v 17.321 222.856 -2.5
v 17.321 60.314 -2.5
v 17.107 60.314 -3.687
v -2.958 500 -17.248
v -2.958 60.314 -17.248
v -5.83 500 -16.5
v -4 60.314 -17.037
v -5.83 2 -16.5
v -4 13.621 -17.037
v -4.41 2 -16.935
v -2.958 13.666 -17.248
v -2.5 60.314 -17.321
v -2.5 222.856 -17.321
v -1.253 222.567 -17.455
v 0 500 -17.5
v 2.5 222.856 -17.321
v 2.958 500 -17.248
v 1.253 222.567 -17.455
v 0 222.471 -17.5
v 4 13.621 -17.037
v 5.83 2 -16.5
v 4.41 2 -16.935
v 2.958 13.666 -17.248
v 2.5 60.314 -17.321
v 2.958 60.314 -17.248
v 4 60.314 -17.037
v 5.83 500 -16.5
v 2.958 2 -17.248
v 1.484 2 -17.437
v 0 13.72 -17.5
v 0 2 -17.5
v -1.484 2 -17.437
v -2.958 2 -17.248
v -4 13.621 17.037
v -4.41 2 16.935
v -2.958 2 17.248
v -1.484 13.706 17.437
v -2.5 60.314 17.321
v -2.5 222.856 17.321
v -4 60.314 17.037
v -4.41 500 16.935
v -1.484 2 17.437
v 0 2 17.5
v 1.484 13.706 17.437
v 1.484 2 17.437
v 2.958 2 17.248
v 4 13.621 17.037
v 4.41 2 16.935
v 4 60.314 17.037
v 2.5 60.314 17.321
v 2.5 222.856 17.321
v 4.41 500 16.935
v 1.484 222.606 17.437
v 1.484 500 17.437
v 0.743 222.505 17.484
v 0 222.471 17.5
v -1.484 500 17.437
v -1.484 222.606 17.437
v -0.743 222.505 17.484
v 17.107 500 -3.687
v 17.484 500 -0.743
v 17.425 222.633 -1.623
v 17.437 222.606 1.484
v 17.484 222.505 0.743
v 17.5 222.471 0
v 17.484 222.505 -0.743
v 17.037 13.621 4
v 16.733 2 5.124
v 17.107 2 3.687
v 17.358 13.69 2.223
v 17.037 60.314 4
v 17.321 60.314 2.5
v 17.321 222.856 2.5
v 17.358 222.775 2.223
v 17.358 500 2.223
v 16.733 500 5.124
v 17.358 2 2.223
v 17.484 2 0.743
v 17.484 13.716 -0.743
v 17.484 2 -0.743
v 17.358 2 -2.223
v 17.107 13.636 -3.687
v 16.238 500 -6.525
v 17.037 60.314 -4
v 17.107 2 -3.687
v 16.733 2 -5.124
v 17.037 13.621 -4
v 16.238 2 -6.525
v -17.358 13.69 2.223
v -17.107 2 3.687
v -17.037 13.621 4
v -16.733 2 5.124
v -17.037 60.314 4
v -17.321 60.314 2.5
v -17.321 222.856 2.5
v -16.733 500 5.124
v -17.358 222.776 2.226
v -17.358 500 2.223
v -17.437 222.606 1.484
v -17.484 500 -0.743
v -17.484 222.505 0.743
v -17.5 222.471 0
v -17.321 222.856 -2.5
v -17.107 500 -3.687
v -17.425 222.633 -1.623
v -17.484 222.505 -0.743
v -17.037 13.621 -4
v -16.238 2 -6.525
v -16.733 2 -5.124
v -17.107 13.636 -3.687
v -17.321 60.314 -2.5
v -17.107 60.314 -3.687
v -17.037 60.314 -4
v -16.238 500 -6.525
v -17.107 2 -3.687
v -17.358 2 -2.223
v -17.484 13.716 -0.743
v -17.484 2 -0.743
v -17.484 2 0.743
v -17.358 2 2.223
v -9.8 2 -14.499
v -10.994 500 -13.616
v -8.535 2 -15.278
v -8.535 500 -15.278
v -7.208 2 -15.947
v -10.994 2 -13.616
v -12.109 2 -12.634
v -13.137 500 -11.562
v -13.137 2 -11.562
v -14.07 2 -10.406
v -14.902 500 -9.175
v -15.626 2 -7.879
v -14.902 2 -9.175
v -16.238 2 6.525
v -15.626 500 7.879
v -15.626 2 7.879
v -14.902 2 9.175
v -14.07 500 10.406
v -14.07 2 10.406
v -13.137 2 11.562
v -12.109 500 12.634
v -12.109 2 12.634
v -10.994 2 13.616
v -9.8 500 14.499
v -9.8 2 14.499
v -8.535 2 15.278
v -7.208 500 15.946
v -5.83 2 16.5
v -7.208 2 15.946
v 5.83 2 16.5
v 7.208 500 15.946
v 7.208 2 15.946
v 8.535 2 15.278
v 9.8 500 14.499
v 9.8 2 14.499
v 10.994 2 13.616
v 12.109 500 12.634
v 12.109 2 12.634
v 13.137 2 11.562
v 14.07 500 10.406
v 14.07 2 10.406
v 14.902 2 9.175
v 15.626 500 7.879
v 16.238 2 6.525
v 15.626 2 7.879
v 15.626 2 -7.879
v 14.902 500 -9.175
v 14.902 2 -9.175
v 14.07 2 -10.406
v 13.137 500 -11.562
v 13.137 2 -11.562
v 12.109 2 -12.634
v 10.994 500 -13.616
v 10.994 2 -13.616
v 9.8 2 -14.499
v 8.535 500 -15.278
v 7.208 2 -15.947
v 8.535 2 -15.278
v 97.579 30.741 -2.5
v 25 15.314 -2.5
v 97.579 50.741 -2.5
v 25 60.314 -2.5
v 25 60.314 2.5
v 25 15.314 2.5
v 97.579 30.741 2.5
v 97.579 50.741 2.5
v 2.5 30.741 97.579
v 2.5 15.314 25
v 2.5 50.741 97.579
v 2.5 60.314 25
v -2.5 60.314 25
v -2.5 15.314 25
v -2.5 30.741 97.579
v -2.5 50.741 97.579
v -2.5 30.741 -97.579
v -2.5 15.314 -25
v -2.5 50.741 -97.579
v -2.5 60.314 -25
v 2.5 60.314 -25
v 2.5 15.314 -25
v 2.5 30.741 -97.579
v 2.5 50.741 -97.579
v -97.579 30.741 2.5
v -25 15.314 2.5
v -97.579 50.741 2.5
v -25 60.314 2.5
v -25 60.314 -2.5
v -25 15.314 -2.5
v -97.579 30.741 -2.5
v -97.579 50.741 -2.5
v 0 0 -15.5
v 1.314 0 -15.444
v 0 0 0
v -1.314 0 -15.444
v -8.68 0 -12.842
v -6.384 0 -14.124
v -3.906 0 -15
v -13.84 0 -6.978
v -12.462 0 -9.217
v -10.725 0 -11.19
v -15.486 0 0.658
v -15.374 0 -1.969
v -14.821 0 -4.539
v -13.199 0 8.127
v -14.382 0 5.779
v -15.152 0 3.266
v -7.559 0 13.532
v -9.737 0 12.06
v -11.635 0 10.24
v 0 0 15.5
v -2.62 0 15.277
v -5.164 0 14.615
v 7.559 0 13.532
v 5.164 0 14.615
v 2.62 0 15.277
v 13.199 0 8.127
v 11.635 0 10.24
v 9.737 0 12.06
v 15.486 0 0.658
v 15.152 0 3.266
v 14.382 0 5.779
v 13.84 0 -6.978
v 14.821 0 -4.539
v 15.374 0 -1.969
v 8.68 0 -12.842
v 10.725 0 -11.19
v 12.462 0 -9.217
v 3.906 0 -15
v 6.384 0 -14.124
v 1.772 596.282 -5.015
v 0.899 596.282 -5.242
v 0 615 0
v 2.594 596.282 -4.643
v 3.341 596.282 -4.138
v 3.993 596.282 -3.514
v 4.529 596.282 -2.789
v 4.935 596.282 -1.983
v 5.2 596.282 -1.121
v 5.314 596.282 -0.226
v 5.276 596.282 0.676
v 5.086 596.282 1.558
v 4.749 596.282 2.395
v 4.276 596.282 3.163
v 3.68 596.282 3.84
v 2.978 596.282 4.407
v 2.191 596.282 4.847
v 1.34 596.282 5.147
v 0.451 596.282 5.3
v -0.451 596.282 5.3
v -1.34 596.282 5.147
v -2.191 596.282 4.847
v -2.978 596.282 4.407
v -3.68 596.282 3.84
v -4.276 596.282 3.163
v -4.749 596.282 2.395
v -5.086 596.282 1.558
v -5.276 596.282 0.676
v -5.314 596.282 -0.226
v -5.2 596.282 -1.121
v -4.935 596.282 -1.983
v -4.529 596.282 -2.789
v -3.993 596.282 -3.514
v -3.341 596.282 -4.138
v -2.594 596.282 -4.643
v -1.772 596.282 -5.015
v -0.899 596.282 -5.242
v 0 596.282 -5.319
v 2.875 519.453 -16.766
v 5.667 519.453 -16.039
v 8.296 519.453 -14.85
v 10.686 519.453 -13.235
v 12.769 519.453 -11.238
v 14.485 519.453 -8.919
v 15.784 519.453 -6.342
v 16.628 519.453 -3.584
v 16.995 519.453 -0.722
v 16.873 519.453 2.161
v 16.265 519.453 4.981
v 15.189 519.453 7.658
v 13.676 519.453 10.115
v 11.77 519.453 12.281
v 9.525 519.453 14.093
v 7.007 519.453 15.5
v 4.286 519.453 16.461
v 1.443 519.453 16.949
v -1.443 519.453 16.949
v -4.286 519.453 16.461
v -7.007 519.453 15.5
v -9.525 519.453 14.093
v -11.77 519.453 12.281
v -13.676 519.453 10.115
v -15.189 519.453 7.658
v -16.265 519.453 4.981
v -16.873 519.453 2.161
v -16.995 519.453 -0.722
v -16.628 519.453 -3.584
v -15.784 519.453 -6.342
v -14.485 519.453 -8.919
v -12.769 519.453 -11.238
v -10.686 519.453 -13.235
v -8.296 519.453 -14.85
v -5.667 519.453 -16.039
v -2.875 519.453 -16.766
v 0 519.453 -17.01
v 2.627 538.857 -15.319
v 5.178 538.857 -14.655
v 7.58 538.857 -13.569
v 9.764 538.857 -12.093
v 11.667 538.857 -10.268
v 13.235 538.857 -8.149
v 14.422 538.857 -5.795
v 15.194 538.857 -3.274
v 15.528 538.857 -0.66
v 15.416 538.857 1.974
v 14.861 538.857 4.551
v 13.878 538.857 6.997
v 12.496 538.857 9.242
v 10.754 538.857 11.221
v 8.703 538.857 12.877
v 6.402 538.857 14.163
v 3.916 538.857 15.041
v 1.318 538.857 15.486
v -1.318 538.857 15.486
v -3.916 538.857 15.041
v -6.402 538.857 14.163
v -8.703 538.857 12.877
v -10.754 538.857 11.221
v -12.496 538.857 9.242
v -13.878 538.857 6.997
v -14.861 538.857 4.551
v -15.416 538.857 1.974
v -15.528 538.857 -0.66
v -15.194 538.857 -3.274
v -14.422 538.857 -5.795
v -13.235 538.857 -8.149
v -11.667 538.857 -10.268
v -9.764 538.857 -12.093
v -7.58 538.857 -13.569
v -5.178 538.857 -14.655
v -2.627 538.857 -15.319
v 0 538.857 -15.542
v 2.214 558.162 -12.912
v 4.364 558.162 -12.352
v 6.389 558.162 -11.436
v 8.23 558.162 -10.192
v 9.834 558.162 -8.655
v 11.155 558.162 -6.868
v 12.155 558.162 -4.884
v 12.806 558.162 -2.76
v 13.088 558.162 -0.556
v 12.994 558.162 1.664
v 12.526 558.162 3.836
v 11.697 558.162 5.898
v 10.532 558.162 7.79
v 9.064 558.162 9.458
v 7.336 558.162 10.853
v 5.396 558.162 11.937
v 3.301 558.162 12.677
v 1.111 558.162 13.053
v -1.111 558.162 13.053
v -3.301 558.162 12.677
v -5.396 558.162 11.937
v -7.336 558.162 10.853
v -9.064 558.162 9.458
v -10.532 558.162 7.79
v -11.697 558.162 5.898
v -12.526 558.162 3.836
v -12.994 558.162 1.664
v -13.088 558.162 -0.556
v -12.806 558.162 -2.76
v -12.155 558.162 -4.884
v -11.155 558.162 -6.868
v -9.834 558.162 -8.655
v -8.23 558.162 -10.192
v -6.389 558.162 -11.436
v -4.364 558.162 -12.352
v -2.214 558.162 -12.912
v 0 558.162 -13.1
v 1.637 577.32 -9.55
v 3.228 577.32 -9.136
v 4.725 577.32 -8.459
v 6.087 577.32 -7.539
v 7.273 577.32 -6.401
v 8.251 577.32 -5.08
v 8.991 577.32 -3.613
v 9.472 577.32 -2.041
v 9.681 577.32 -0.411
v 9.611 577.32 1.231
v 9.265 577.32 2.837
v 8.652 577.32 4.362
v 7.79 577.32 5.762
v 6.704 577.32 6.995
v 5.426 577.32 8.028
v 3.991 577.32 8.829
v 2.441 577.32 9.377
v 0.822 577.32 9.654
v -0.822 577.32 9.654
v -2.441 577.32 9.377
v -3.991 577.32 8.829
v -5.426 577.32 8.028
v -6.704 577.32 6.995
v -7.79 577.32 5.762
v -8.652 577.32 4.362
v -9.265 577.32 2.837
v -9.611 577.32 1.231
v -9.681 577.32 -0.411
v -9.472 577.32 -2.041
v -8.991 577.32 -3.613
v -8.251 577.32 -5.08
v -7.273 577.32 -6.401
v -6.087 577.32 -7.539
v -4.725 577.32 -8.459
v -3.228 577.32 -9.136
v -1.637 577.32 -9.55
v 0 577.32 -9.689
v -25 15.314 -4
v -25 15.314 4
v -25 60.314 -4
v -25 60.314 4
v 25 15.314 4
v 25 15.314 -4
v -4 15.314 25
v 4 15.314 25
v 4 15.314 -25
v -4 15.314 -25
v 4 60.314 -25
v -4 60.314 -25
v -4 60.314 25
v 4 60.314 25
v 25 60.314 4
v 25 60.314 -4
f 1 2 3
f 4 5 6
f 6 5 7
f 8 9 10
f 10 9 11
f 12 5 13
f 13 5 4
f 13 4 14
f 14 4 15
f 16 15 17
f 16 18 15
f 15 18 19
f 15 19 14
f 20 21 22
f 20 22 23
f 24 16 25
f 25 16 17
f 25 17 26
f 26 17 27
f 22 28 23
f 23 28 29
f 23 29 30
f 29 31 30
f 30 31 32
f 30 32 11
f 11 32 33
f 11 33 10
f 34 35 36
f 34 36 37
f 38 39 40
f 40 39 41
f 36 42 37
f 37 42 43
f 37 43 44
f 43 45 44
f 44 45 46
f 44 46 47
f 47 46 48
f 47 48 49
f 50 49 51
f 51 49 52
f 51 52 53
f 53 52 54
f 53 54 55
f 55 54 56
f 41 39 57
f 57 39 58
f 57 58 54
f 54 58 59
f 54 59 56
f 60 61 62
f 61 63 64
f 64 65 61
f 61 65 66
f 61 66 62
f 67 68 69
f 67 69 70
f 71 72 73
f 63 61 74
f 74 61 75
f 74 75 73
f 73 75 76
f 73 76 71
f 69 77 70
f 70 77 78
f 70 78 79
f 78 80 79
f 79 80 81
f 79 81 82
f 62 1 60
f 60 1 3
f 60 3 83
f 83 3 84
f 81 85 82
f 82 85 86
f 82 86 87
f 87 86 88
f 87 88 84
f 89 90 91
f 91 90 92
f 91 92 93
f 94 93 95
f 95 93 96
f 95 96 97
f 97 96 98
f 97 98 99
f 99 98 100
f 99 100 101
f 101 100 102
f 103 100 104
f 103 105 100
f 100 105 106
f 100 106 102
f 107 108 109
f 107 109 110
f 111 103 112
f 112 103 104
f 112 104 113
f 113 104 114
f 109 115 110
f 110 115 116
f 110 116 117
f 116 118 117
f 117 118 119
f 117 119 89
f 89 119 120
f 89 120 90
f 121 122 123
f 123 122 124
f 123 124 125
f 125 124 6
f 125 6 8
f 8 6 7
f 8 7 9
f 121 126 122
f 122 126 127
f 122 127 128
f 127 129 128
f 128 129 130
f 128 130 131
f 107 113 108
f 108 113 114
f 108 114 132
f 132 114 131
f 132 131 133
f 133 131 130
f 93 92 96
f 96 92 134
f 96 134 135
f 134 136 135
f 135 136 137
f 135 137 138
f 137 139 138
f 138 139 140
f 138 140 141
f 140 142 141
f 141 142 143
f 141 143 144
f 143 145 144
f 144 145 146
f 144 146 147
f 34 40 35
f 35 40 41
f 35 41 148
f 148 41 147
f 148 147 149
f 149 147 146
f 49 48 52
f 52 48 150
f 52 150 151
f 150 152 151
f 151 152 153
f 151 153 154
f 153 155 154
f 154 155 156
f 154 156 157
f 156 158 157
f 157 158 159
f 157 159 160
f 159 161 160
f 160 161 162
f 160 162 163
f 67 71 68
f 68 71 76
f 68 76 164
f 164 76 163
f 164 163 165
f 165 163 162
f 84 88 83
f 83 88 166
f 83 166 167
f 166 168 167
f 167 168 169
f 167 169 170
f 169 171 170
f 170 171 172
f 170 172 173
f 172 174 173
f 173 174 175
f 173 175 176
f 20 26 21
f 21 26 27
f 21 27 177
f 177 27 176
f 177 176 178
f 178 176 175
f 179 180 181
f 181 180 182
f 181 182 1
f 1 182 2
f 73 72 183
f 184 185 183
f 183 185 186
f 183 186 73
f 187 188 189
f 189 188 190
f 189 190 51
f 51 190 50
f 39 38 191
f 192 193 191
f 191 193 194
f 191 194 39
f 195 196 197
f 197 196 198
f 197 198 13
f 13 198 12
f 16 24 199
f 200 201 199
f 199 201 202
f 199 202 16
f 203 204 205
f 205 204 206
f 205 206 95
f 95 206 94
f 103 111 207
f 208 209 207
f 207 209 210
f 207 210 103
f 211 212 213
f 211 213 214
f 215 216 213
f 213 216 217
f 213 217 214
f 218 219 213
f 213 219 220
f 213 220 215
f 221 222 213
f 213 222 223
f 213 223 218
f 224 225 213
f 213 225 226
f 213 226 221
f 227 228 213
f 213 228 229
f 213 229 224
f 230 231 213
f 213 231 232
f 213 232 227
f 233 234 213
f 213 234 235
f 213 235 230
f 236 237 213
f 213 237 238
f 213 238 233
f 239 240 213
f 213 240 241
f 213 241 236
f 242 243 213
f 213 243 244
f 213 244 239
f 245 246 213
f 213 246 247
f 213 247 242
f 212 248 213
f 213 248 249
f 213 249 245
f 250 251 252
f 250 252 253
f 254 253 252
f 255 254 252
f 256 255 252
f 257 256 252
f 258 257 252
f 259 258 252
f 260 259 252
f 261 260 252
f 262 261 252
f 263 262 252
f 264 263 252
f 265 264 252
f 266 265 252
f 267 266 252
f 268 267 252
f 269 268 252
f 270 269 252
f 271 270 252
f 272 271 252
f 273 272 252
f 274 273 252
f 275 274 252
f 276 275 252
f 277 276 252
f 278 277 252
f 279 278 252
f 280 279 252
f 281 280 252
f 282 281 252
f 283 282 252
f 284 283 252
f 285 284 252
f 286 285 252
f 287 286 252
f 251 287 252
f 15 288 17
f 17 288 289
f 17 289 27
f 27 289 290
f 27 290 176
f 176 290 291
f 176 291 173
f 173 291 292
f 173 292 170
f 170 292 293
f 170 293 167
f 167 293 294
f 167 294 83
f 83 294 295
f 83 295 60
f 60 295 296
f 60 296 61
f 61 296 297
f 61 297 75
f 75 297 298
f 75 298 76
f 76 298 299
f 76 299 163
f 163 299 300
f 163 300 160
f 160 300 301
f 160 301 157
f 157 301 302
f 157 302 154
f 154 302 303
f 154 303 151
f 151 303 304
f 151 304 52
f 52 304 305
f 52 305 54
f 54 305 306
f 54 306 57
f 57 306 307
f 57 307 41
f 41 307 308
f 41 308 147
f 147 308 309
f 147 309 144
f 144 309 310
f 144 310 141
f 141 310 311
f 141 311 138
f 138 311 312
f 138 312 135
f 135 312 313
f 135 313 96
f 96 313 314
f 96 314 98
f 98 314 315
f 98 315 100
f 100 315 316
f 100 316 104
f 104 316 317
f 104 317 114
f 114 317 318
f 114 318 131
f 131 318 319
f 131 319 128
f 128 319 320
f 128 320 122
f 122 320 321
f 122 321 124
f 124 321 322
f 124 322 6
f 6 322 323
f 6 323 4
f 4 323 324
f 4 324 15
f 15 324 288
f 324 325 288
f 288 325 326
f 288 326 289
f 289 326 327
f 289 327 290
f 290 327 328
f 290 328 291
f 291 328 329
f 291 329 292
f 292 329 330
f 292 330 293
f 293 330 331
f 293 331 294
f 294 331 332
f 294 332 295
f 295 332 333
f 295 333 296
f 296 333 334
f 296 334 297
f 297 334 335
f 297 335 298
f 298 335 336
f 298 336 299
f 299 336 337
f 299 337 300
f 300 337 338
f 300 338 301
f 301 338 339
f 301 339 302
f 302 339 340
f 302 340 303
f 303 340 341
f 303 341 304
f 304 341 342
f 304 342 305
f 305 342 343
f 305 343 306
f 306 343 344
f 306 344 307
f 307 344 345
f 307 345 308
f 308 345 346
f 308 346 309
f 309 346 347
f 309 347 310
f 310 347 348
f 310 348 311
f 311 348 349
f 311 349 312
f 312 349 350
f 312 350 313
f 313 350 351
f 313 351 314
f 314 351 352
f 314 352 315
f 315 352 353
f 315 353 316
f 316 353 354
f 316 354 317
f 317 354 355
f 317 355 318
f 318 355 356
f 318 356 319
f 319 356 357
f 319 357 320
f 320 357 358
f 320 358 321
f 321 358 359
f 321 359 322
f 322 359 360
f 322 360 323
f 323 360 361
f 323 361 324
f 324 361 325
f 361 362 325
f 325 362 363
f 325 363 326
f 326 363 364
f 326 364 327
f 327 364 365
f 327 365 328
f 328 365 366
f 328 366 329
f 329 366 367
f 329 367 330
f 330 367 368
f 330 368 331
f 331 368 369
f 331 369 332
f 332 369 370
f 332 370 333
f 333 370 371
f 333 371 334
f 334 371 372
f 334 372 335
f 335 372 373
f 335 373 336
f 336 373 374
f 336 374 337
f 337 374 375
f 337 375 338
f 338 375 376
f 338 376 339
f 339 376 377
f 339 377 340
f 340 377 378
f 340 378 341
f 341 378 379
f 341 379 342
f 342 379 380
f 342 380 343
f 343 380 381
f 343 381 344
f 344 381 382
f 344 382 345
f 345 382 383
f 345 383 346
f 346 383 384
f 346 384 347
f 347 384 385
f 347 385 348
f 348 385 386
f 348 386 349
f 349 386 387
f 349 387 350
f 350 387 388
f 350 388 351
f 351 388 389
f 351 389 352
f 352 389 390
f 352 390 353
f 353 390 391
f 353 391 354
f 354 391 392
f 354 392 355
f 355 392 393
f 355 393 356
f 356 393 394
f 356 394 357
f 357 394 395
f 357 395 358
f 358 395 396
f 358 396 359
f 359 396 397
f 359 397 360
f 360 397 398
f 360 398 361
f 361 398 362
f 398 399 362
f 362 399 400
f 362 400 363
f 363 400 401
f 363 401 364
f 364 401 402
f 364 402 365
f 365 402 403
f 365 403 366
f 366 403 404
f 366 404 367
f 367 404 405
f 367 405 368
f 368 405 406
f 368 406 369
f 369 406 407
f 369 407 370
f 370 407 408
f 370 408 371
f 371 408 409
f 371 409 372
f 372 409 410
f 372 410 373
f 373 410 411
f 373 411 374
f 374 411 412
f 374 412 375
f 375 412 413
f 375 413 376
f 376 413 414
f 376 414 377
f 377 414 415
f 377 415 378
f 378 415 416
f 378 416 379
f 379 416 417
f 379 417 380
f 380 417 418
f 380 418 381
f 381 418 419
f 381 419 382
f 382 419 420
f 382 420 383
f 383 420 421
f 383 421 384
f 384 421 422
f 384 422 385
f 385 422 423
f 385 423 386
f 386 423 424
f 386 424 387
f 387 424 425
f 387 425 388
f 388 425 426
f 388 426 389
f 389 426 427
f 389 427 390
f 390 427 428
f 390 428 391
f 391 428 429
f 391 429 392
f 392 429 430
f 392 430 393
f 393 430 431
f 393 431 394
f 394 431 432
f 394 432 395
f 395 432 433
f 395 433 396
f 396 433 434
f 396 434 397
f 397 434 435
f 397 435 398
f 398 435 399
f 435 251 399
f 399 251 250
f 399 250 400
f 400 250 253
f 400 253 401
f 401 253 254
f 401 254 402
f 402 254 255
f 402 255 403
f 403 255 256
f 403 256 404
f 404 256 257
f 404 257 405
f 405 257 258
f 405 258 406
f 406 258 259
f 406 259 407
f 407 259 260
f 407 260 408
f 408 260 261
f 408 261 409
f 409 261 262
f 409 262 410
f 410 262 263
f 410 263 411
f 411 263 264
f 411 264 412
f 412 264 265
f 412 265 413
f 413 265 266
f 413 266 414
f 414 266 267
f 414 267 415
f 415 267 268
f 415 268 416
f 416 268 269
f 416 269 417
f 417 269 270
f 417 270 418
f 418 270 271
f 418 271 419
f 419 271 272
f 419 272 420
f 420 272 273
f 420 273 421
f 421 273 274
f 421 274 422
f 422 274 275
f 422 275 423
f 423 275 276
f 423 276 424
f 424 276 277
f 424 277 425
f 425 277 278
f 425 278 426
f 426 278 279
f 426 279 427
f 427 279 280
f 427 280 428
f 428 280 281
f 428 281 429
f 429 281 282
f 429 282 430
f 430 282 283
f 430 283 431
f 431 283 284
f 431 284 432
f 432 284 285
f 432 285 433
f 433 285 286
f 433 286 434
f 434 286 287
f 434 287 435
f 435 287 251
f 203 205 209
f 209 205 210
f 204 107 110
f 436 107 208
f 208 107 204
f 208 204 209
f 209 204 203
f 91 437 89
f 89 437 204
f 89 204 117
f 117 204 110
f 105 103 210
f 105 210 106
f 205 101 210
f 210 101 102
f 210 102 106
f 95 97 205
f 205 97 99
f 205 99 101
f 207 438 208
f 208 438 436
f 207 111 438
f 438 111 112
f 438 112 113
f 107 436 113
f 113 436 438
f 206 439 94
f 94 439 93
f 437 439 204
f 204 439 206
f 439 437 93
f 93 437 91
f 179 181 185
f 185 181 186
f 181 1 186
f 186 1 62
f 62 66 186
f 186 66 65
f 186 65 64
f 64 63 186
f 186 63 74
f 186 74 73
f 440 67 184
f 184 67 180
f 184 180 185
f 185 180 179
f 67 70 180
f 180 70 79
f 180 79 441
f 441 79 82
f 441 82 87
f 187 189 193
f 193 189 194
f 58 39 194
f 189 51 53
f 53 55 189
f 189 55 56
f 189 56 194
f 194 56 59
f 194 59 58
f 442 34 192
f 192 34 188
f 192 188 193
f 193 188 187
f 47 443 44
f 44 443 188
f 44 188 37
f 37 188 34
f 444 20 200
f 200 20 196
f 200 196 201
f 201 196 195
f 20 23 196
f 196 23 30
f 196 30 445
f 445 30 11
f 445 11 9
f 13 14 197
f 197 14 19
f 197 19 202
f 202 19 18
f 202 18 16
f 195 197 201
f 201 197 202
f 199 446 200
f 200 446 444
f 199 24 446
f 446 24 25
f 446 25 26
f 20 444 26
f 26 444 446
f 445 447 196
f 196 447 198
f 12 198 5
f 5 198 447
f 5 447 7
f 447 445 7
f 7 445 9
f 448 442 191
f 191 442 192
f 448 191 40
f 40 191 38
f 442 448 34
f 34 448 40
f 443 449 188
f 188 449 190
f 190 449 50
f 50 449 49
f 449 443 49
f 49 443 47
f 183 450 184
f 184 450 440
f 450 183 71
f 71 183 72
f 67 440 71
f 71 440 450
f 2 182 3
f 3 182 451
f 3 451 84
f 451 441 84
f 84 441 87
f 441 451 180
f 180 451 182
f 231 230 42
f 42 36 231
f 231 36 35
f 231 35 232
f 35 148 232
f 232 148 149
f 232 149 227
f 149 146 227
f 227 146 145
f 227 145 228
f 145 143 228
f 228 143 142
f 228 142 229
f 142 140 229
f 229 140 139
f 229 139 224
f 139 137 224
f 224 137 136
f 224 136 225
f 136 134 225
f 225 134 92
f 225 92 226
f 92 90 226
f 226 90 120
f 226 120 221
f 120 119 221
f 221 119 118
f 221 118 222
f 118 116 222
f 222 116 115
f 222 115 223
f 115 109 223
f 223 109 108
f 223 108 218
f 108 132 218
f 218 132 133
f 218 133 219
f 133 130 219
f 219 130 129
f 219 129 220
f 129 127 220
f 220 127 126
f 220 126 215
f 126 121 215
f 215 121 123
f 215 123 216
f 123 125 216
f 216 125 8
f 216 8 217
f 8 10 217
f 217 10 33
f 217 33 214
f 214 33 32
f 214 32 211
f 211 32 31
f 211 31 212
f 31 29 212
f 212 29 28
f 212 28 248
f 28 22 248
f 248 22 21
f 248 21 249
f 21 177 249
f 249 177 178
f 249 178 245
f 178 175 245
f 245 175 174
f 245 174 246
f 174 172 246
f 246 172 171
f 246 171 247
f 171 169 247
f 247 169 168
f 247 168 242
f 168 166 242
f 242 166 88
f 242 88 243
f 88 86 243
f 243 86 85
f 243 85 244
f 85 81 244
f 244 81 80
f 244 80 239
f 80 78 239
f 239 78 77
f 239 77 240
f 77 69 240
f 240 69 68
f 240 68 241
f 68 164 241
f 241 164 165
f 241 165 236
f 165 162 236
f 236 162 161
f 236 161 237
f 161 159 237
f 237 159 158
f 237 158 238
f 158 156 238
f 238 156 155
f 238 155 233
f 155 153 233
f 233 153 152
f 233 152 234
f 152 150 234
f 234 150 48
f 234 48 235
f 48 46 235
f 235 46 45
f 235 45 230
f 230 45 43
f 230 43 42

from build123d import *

# Parameters (mm, degrees)
SALIENTE_EXTRUIR1_DEPTH = 2.5
SALIENTE_EXTRUIR2_DEPTH = 4
MATRIZC2_COUNT          = 4
CHAFL_N1_SIZE           = 2


with BuildPart() as part:
    # Croquis2 → Revolución1 (revolve)
    with BuildSketch(Plane.XY):
        with BuildLine():
            Line((0, 0), (0, 615))
            ThreePointArc((0, 615), (13.099961221, 558.161950621), (17.5, 500))
            Line((17.5, 500), (17.5, 0))
            Line((17.5, 0), (0, 0))
        make_face()
    revolve(axis=Axis((0, 0, 0), (0, 1, 0)))

    # Croquis3 → Saliente-Extruir1 (add, symmetric)
    with BuildSketch(Plane.XY):
        Polygon((0, 10), (-97.579043475, 30.741065972), (-97.579043475, 50.741065972), (0, 260), align=None)
    saliente_extruir1 = extrude(amount=SALIENTE_EXTRUIR1_DEPTH, both=True)

    # Croquis4 → Saliente-Extruir2 (add, symmetric)
    with BuildSketch(Plane.XY):
        Polygon((-25, 15.313914042), (-25, 60.313914042), (0, 60.313914042), (0, 10), align=None)
    saliente_extruir2 = extrude(amount=SALIENTE_EXTRUIR2_DEPTH, both=True)

    # MatrizC2: Saliente-Extruir1, Saliente-Extruir2 ×4 about axis
    matrizc2_axis = Axis((0, 645.75, 0), (0, -1, 0))
    add([saliente_extruir1.rotate(matrizc2_axis, i * 360 / MATRIZC2_COUNT) for i in range(1, MATRIZC2_COUNT)])
    add([saliente_extruir2.rotate(matrizc2_axis, i * 360 / MATRIZC2_COUNT) for i in range(1, MATRIZC2_COUNT)])

    # Chaflán1
    chafl_n1_edges = [part.edges().sort_by_distance(p)[0] for p in [
        (-17.5, 0, 0),
    ]]
    chamfer(chafl_n1_edges, length=CHAFL_N1_SIZE)


solid = part.part
